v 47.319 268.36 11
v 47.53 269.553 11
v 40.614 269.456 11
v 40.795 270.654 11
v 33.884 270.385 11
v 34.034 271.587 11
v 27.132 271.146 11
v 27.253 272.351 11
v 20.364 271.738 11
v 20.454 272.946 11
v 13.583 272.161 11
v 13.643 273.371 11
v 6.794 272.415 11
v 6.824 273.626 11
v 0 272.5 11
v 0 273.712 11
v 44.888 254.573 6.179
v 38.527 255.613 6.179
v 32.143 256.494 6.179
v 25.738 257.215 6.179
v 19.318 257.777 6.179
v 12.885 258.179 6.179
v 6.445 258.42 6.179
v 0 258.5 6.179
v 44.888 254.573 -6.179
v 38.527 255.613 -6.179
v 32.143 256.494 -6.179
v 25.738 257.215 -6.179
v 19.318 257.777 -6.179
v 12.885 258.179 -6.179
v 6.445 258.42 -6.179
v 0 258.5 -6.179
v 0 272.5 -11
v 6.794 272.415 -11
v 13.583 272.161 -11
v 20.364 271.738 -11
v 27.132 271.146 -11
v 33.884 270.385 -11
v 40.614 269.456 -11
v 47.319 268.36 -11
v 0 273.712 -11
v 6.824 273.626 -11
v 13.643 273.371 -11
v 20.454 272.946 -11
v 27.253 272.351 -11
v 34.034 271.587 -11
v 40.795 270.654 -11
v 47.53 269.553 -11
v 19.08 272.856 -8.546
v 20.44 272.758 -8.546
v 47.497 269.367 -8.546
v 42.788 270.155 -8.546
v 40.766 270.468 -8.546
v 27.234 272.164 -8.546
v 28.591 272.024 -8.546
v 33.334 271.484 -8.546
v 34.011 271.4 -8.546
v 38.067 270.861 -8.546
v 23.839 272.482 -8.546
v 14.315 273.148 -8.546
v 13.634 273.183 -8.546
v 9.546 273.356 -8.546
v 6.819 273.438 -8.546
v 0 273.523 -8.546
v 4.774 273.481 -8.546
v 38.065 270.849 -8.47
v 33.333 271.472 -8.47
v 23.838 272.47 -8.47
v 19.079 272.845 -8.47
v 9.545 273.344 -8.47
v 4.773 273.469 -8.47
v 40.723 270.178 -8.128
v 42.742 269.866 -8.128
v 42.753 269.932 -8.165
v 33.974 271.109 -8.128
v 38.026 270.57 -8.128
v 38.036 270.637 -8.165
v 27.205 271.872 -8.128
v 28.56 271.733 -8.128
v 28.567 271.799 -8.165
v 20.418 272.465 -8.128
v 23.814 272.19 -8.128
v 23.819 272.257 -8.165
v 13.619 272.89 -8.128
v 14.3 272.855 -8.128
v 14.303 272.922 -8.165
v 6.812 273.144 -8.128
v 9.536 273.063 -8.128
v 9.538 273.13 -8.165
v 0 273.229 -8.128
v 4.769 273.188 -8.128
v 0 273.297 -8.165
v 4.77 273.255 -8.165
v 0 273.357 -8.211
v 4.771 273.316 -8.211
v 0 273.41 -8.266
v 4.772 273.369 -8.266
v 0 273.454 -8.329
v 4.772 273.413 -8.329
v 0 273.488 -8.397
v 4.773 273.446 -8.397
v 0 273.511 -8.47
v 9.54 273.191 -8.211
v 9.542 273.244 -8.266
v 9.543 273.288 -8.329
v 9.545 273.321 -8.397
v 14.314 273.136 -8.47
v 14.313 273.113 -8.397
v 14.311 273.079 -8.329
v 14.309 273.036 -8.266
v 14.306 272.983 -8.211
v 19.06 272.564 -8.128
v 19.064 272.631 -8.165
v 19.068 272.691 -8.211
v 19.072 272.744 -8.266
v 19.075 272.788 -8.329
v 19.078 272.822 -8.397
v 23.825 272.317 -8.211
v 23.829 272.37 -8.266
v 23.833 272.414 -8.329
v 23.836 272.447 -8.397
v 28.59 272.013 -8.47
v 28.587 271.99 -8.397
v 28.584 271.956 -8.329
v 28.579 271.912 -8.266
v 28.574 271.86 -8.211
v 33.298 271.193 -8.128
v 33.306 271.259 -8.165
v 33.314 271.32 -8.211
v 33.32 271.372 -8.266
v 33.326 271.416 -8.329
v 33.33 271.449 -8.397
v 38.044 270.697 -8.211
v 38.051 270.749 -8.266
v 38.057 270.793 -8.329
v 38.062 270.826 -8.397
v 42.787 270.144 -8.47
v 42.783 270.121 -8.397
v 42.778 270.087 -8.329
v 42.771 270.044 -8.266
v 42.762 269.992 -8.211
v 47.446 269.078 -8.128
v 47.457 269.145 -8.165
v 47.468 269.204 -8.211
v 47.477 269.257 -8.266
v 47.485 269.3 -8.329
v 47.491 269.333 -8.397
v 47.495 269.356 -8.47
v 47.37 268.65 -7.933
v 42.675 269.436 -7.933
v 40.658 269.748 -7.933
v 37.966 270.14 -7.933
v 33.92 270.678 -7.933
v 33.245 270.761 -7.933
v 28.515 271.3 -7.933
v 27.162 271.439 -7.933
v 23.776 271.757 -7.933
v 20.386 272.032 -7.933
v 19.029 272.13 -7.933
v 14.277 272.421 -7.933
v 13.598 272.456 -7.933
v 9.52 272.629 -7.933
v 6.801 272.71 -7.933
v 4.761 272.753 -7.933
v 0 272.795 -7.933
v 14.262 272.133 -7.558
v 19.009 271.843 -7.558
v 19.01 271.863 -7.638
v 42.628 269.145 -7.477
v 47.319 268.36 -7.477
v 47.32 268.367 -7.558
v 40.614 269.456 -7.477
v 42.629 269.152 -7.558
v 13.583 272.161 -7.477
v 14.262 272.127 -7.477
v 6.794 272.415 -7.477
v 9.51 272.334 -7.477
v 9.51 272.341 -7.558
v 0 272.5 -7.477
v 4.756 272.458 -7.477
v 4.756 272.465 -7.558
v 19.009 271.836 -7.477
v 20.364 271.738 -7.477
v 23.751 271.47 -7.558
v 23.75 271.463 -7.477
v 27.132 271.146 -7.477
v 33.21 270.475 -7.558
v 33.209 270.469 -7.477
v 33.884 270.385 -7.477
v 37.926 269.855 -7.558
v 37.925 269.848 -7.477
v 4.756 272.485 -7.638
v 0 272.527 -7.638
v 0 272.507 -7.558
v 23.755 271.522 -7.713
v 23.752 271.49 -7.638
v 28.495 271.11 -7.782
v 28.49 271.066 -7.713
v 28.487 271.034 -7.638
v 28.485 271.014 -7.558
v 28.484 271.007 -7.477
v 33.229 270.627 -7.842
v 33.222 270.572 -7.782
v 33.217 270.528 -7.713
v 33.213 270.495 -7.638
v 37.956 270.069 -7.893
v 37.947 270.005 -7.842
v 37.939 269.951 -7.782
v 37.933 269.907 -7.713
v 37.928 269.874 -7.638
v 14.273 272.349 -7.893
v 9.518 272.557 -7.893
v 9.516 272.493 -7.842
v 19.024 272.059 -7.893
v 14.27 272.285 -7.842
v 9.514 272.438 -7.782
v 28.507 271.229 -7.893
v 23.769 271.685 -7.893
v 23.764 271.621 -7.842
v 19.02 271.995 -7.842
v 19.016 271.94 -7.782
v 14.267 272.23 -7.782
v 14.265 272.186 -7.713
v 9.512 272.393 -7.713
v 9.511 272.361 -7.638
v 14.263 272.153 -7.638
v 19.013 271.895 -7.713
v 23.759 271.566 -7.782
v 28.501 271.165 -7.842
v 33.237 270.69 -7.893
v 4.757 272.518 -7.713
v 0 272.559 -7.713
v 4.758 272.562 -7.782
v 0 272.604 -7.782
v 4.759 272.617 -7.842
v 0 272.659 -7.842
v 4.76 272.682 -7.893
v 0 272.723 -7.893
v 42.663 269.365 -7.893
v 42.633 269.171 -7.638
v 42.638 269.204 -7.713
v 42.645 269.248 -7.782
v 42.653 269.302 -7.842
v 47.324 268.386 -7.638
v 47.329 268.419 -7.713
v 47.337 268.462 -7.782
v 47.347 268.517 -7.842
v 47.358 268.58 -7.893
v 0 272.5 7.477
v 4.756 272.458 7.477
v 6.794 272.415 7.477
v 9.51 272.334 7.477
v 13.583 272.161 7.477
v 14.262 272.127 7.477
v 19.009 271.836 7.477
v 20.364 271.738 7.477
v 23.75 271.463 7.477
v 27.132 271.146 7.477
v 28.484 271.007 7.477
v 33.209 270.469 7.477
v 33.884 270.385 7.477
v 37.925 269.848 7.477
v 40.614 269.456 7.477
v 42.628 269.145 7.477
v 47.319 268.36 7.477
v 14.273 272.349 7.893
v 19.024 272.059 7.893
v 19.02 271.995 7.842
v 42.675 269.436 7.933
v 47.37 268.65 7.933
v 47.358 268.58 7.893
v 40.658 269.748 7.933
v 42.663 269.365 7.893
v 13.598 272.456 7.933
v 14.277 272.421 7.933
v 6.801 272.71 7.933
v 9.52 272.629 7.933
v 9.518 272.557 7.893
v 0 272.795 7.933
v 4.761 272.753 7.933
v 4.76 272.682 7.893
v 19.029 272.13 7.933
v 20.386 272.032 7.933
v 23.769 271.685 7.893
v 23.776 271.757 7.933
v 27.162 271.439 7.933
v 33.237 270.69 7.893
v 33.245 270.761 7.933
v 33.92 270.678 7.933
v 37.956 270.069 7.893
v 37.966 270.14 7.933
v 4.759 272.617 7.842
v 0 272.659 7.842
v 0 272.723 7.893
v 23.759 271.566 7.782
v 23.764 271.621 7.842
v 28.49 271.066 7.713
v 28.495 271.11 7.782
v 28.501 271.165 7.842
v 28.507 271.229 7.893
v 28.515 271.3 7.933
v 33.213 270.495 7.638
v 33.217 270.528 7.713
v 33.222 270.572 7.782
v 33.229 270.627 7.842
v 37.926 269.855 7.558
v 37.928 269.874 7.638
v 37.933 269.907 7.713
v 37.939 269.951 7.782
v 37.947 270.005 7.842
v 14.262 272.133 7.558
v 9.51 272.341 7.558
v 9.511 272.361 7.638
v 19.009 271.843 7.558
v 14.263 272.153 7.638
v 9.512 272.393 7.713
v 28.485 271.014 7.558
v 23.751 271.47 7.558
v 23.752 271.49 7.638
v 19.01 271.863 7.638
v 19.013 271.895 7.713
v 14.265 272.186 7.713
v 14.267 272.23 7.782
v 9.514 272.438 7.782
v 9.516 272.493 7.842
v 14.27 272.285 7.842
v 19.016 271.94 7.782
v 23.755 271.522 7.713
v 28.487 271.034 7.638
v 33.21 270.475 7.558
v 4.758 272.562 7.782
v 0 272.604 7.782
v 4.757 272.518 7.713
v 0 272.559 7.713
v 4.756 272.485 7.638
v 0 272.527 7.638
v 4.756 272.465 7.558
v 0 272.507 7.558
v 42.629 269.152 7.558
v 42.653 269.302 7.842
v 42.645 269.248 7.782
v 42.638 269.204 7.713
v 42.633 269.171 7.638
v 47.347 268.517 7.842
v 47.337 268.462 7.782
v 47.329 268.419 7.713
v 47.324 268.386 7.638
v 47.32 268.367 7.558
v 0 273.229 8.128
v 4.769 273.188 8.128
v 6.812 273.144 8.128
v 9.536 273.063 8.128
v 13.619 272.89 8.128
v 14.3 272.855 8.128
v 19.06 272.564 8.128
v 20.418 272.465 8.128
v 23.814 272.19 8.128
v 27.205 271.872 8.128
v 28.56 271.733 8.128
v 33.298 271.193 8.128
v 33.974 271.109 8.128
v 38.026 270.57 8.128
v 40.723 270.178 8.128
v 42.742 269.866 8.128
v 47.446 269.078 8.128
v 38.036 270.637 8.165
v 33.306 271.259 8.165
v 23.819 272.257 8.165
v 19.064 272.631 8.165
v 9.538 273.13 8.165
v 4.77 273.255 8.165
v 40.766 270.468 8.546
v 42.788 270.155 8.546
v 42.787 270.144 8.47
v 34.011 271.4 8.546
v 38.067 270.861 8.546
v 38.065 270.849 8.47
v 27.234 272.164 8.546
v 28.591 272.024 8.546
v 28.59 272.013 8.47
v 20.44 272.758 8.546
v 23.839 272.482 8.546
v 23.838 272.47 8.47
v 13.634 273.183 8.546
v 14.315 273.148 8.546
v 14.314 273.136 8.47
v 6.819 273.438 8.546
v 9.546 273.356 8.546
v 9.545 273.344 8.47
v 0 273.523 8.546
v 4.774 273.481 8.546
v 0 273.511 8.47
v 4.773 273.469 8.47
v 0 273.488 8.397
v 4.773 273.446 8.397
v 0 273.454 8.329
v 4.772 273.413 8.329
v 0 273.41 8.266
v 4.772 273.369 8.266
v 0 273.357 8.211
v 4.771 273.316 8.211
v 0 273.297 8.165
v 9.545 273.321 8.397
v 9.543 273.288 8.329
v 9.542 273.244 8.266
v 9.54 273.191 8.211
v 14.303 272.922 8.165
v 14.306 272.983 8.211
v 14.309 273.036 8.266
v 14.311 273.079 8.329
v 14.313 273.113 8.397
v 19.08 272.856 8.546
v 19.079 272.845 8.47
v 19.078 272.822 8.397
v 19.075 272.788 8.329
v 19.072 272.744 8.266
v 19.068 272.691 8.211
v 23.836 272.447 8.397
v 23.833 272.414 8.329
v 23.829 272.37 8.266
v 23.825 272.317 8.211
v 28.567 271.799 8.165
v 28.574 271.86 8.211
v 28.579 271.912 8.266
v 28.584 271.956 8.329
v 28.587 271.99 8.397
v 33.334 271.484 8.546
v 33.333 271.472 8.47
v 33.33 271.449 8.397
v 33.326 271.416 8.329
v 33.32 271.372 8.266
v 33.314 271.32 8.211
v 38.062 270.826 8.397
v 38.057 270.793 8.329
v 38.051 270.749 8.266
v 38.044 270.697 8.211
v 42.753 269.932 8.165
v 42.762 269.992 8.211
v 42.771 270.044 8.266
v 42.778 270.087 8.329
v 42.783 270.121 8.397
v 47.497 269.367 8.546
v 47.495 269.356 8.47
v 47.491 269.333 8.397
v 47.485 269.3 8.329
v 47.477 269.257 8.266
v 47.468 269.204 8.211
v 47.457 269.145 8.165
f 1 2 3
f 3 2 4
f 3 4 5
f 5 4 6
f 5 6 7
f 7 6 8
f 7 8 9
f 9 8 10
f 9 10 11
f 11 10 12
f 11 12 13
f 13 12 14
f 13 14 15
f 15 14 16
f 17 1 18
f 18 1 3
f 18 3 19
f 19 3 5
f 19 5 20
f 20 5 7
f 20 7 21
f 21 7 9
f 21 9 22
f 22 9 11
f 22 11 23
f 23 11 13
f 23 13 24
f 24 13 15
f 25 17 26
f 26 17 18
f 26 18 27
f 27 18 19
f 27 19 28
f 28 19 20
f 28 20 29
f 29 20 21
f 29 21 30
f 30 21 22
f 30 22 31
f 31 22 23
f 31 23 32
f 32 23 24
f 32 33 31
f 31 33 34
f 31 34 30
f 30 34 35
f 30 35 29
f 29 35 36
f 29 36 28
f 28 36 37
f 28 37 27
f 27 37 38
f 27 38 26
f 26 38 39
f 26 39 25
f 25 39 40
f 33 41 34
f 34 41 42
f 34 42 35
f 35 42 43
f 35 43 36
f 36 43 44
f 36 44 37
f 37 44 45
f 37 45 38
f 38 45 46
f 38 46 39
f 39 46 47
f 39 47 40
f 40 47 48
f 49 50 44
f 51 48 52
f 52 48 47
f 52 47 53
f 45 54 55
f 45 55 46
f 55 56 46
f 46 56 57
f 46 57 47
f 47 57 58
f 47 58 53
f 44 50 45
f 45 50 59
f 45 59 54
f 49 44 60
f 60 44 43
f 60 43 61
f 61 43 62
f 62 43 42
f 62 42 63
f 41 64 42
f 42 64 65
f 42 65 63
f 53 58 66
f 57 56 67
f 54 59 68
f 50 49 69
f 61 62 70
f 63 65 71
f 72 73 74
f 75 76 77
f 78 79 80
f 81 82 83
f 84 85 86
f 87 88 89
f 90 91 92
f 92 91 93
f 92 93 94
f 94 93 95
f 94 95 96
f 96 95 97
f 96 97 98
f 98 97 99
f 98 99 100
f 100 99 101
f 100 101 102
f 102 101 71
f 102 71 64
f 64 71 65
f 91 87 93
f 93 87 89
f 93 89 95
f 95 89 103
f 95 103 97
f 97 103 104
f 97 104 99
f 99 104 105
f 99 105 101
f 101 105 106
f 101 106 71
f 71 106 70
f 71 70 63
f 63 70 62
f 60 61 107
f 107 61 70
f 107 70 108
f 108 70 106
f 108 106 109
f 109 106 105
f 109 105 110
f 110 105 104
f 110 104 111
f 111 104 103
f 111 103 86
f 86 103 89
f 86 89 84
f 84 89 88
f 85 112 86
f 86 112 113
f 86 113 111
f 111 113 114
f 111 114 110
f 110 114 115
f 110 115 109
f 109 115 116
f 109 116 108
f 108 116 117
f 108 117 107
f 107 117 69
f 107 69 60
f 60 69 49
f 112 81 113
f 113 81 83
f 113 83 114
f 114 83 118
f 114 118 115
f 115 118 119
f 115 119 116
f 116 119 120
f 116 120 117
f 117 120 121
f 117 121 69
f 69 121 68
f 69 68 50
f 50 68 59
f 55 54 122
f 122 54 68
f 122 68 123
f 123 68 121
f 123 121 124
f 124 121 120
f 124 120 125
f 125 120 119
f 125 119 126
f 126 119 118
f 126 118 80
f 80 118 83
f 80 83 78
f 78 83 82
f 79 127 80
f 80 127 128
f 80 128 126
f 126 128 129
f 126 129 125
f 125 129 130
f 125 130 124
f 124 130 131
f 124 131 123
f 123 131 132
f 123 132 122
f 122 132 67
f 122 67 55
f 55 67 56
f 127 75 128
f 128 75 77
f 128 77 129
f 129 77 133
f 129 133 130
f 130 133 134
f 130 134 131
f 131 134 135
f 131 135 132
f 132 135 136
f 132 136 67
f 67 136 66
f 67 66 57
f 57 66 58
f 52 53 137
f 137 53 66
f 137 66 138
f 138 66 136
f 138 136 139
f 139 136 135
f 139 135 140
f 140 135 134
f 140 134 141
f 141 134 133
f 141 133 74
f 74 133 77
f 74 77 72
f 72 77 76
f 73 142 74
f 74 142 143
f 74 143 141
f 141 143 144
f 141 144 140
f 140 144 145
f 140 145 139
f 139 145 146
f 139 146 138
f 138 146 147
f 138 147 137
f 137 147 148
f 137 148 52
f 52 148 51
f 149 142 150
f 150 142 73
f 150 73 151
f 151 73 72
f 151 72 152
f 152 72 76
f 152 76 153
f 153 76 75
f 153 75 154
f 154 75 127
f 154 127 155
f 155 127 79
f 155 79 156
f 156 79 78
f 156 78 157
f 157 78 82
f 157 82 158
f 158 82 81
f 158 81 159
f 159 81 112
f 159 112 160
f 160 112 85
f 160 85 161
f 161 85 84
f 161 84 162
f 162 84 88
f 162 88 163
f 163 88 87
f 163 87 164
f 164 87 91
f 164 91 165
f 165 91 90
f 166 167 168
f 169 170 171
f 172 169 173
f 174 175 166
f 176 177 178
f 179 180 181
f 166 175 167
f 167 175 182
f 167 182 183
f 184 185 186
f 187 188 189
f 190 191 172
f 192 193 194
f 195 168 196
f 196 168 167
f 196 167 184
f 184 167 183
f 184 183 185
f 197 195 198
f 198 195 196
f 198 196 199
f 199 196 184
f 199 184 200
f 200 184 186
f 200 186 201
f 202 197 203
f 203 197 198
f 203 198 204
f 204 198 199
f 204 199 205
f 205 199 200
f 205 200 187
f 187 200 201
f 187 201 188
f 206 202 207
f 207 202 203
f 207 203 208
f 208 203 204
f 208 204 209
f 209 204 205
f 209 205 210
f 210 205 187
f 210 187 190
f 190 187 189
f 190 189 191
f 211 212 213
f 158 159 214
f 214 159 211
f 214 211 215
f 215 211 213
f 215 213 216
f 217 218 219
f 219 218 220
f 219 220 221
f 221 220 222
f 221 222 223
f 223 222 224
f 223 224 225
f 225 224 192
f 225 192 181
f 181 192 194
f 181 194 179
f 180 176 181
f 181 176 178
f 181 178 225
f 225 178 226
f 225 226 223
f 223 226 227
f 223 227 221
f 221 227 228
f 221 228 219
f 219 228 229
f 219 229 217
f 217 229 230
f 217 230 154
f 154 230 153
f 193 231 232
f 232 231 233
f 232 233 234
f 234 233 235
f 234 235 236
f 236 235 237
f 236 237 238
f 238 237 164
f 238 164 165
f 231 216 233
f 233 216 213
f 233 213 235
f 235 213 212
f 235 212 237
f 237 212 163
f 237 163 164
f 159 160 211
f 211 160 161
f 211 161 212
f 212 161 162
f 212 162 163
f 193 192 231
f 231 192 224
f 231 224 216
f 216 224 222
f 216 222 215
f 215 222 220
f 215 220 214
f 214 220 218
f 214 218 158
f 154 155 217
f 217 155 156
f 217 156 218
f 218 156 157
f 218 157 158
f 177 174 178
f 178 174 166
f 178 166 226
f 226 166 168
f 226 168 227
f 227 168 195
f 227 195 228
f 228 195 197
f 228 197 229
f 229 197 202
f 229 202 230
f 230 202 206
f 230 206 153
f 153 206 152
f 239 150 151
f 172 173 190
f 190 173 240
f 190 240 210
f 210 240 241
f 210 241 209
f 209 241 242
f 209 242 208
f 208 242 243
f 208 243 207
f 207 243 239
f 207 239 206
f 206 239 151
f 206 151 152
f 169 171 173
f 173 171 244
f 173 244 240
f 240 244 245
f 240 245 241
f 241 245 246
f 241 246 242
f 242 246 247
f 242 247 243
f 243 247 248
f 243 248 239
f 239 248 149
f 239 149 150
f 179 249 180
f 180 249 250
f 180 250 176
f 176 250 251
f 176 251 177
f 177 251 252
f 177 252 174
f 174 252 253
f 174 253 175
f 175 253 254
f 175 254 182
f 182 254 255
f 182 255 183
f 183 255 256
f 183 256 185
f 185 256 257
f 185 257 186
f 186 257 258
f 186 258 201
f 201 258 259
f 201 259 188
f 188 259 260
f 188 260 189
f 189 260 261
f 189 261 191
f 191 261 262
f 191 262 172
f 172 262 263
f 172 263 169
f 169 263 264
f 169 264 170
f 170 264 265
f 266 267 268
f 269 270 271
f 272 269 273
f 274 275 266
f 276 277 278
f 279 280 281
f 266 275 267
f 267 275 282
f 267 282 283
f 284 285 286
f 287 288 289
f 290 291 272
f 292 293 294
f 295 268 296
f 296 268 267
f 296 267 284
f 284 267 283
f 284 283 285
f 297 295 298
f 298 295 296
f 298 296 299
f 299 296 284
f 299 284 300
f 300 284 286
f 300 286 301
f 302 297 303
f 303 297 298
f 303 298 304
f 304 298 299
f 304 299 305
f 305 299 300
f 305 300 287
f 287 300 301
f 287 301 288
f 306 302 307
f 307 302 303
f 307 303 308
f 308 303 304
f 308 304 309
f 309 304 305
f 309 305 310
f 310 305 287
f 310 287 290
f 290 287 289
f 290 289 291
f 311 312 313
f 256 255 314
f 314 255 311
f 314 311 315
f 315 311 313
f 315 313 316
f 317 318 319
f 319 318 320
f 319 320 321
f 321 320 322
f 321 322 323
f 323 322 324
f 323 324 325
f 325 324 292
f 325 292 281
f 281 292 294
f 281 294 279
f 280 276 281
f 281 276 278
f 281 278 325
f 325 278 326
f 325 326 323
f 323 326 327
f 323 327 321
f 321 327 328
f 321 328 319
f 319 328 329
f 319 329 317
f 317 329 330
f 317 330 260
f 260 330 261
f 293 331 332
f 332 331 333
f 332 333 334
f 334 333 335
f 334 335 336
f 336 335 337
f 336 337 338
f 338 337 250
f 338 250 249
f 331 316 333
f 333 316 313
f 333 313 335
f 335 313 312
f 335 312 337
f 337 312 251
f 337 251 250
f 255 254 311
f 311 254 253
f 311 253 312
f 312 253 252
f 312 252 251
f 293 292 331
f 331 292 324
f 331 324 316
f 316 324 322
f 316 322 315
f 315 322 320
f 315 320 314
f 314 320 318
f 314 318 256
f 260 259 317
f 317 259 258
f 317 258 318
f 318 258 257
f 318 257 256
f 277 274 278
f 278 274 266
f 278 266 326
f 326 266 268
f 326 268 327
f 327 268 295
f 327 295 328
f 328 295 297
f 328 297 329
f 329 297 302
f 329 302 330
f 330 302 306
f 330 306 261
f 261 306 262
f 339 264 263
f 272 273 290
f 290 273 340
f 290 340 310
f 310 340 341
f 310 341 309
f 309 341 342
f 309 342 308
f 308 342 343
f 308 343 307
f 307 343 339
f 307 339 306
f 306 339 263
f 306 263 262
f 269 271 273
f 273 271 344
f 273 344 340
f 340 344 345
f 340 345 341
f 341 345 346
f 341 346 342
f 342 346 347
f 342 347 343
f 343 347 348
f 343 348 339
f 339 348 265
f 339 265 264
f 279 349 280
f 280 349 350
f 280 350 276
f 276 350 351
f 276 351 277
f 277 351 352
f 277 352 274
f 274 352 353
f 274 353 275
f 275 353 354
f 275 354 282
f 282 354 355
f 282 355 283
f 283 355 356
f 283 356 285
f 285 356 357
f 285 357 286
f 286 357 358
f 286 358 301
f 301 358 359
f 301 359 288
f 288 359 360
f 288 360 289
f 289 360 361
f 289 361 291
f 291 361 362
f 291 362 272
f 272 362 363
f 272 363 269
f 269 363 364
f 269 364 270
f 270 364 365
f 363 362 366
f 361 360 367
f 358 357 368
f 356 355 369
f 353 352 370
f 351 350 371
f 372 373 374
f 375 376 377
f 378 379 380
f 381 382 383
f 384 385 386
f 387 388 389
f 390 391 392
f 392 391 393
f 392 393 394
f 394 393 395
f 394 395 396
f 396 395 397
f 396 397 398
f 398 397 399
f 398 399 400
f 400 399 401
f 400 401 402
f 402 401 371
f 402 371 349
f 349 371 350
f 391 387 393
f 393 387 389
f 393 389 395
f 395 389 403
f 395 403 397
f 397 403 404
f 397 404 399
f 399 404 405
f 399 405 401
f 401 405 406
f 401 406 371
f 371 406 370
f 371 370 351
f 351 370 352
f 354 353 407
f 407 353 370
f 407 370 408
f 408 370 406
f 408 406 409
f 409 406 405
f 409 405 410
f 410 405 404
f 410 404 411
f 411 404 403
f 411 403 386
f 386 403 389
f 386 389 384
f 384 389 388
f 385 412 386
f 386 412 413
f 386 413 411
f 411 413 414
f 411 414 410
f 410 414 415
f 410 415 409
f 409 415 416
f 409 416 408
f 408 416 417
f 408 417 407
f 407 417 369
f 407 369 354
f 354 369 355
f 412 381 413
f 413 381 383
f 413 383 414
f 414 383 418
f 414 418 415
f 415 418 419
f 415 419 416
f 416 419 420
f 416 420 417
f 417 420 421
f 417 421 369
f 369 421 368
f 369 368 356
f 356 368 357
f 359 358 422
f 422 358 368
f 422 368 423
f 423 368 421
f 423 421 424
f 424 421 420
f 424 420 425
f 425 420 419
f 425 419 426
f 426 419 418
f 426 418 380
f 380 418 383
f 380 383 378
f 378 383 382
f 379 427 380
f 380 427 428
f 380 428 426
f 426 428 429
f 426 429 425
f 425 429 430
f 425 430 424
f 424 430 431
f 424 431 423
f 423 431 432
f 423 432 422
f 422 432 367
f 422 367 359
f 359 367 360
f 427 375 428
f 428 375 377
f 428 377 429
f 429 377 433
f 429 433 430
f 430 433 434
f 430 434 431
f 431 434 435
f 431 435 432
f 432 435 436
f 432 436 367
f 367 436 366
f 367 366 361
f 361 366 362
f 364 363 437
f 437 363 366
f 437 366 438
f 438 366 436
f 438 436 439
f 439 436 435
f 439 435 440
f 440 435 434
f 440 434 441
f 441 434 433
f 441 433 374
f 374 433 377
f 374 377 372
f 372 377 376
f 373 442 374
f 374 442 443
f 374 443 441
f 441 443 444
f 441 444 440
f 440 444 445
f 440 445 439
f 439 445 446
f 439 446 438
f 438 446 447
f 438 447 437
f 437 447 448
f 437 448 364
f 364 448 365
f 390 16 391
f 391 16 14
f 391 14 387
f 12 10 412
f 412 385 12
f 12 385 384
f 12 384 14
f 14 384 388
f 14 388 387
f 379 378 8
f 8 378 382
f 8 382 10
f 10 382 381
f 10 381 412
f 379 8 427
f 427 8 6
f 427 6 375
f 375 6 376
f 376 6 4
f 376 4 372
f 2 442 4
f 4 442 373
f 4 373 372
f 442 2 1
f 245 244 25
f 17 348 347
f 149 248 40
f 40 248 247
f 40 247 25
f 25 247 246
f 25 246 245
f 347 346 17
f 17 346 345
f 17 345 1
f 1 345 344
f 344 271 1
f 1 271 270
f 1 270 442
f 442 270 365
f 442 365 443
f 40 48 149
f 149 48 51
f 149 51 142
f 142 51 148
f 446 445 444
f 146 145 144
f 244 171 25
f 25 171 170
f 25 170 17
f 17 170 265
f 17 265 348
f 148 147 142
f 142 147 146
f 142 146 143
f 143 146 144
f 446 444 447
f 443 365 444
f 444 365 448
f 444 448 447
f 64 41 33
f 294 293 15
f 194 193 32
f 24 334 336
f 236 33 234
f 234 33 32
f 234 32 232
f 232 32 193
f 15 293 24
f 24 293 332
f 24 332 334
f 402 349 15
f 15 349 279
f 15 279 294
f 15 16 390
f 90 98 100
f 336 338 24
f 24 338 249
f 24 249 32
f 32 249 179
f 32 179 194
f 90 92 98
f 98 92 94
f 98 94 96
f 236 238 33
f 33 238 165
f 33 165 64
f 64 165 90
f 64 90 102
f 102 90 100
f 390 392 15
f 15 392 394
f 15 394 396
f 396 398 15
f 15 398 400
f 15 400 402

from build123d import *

# Parameters (mm, degrees)
CROQUIS2_R                        = 2.1
CORTAR_EXTRUIR1_DEPTH             = 406.488213274
MATRIZC1_COUNT                    = 36
CORTAR_EXTRUIR5_REACH             = 679.172
CROQUIS4_R                        = 4.2
CORTAR_EXTRUIR5_DIRECTION_2_REACH = 679.172
REVOLUCI_N3_ANGLE                 = 10


with BuildPart() as part:
    # Croquis1 → Revolución2 (revolve)
    with BuildSketch(Plane(origin=(0, 0, 0), x_dir=(0, 0, -1), z_dir=(1, 0, 0)), mode=Mode.PRIVATE) as revoluci_n2_sk:
        with BuildLine():
            Line((-7.932667948, 272.794817661), (-8.128235692, 273.229412649))
            ThreePointArc((-8.128235692, 273.229412649), (-8.296797496, 273.433378016), (-8.545848195, 273.522757553))
            Line((-8.545848195, 273.522757553), (-12.682817286, 273.840985945))
            ThreePointArc((-12.682817286, 273.840985945), (-14.22986011, 274.537339899), (-14.976158002, 276.060917854))
            Line((-14.976158002, 276.060917854), (-16, 285.390918278))
            ThreePointArc((-16, 285.390918278), (-14.380212317, 286.280019748), (-14.896885493, 284.505967215))
            Line((-14.896885493, 284.505967215), (-14.369495262, 279.7))
            ThreePointArc((-14.369495262, 279.7), (-11.00403892, 278.246015718), (-9.3, 275))
            ThreePointArc((-9.3, 275), (-4.661345964, 274.499260763), (0, 274.3))
            ThreePointArc((0, 274.3), (4.661345964, 274.499260763), (9.3, 275))
            ThreePointArc((9.3, 275), (11.00403892, 278.246015718), (14.369495262, 279.7))
            Line((14.369495262, 279.7), (14.896885493, 284.505967215))
            ThreePointArc((14.896885493, 284.505967215), (14.380212317, 286.280019748), (16, 285.390918278))
            Line((16, 285.390918278), (14.976158002, 276.060917854))
            ThreePointArc((14.976158002, 276.060917854), (14.22986011, 274.537339899), (12.682817286, 273.840985945))
            Line((12.682817286, 273.840985945), (8.545848195, 273.522757553))
            ThreePointArc((8.545848195, 273.522757553), (8.296797496, 273.433378016), (8.128235692, 273.229412649))
            Line((8.128235692, 273.229412649), (7.932667948, 272.794817661))
            ThreePointArc((7.932667948, 272.794817661), (7.748192766, 272.580124322), (7.476707195, 272.5))
            Line((7.476707195, 272.5), (-7.476707195, 272.5))
            ThreePointArc((-7.476707195, 272.5), (-7.748192766, 272.580124322), (-7.932667948, 272.794817661))
        make_face()
    revolve(revoluci_n2_sk.sketch.rotate(Axis((0, 0, 417.631684514), (0, 0, -1)), 180), axis=Axis((0, 0, 417.631684514), (0, 0, -1)))

    # Croquis2 → Cortar-Extruir1 (cut, through all)
    with BuildSketch(Plane(origin=(0, 0, 0), x_dir=(1, 0, 0), z_dir=(0, 1, 0))):
        with Locations(Location((0, 0, 0), (0, 0, 270))):
            Circle(CROQUIS2_R)
    cortar_extruir1 = extrude(amount=-CORTAR_EXTRUIR1_DEPTH, mode=Mode.SUBTRACT)

    # MatrizC1: Cortar-Extruir1 ×36 about axis
    matrizc1_axis = Axis((0, 0, 0), (0, 0, 1))
    for i in range(1, MATRIZC1_COUNT):
        add(cortar_extruir1.rotate(matrizc1_axis, i * 360 / MATRIZC1_COUNT), mode=Mode.SUBTRACT)

    # Croquis4 → Cortar-Extruir5 (cut, up to next)
    with BuildSketch(Plane(origin=(-224.693405748, 157.332016491, 0), x_dir=(0, 0, -1), z_dir=(-0.8191520442889971, 0.5735764363510386, 0)), mode=Mode.PRIVATE) as cortar_extruir5_sk1:
        Circle(CROQUIS4_R)
    cortar_extruir5_tool1 = extrude(cortar_extruir5_sk1.sketch, amount=-CORTAR_EXTRUIR5_REACH, mode=Mode.PRIVATE) & part.part
    add(cortar_extruir5_tool1.solids().sort_by_distance((-224.693406, 157.332016, 0))[0], mode=Mode.SUBTRACT)

    # Croquis4 → Cortar-Extruir5 direction 2 (cut, up to next)
    with BuildSketch(Plane(origin=(-224.693405748, 157.332016491, 0), x_dir=(0, 0, -1), z_dir=(-0.8191520442889971, 0.5735764363510386, 0)), mode=Mode.PRIVATE) as cortar_extruir5_direction_2_sk1:
        Circle(CROQUIS4_R)
    cortar_extruir5_direction_2_tool1 = extrude(cortar_extruir5_direction_2_sk1.sketch, amount=CORTAR_EXTRUIR5_DIRECTION_2_REACH, mode=Mode.PRIVATE) & part.part
    add(cortar_extruir5_direction_2_tool1.solids().sort_by_distance((-224.693406, 157.332016, 0))[0], mode=Mode.SUBTRACT)


with BuildPart() as body_2:
    # Croquis5 → Revolución3 (revolve)
    with BuildSketch(Plane(origin=(0, 0, 0), x_dir=(0, 0, -1), z_dir=(1, 0, 0))):
        with BuildLine():
            Line((-11, 273.711538462), (-11, 272.5))
            Line((-11, 272.5), (-7.476707195, 272.5))
            ThreePointArc((-7.476707195, 272.5), (-7.748192766, 272.580124322), (-7.932667948, 272.794817661))
            Line((-7.932667948, 272.794817661), (-8.128235692, 273.229412649))
            ThreePointArc((-8.128235692, 273.229412649), (-8.296797496, 273.433378016), (-8.545848195, 273.522757553))
            Line((-8.545848195, 273.522757553), (-11, 273.711538462))
        make_face()
        Polygon((-7.476707195, 272.5), (-11, 272.5), (-6.179413414, 258.5), (0, 258.5), (0, 272.5), align=None)
        Polygon((7.476707195, 272.5), (0, 272.5), (0, 258.5), (6.179413414, 258.5), (11, 272.5), align=None)
        with BuildLine():
            ThreePointArc((7.932667948, 272.794817661), (7.748192766, 272.580124322), (7.476707195, 272.5))
            Line((7.476707195, 272.5), (11, 272.5))
            Line((11, 272.5), (11, 273.711538462))
            Line((11, 273.711538462), (8.545848195, 273.522757553))
            ThreePointArc((8.545848195, 273.522757553), (8.296797496, 273.433378016), (8.128235692, 273.229412649))
            Line((8.128235692, 273.229412649), (7.932667948, 272.794817661))
        make_face()
    revolve(axis=Axis((0, 0, 417.631684514), (0, 0, -1)), revolution_arc=REVOLUCI_N3_ANGLE)


solid = body_2.part
